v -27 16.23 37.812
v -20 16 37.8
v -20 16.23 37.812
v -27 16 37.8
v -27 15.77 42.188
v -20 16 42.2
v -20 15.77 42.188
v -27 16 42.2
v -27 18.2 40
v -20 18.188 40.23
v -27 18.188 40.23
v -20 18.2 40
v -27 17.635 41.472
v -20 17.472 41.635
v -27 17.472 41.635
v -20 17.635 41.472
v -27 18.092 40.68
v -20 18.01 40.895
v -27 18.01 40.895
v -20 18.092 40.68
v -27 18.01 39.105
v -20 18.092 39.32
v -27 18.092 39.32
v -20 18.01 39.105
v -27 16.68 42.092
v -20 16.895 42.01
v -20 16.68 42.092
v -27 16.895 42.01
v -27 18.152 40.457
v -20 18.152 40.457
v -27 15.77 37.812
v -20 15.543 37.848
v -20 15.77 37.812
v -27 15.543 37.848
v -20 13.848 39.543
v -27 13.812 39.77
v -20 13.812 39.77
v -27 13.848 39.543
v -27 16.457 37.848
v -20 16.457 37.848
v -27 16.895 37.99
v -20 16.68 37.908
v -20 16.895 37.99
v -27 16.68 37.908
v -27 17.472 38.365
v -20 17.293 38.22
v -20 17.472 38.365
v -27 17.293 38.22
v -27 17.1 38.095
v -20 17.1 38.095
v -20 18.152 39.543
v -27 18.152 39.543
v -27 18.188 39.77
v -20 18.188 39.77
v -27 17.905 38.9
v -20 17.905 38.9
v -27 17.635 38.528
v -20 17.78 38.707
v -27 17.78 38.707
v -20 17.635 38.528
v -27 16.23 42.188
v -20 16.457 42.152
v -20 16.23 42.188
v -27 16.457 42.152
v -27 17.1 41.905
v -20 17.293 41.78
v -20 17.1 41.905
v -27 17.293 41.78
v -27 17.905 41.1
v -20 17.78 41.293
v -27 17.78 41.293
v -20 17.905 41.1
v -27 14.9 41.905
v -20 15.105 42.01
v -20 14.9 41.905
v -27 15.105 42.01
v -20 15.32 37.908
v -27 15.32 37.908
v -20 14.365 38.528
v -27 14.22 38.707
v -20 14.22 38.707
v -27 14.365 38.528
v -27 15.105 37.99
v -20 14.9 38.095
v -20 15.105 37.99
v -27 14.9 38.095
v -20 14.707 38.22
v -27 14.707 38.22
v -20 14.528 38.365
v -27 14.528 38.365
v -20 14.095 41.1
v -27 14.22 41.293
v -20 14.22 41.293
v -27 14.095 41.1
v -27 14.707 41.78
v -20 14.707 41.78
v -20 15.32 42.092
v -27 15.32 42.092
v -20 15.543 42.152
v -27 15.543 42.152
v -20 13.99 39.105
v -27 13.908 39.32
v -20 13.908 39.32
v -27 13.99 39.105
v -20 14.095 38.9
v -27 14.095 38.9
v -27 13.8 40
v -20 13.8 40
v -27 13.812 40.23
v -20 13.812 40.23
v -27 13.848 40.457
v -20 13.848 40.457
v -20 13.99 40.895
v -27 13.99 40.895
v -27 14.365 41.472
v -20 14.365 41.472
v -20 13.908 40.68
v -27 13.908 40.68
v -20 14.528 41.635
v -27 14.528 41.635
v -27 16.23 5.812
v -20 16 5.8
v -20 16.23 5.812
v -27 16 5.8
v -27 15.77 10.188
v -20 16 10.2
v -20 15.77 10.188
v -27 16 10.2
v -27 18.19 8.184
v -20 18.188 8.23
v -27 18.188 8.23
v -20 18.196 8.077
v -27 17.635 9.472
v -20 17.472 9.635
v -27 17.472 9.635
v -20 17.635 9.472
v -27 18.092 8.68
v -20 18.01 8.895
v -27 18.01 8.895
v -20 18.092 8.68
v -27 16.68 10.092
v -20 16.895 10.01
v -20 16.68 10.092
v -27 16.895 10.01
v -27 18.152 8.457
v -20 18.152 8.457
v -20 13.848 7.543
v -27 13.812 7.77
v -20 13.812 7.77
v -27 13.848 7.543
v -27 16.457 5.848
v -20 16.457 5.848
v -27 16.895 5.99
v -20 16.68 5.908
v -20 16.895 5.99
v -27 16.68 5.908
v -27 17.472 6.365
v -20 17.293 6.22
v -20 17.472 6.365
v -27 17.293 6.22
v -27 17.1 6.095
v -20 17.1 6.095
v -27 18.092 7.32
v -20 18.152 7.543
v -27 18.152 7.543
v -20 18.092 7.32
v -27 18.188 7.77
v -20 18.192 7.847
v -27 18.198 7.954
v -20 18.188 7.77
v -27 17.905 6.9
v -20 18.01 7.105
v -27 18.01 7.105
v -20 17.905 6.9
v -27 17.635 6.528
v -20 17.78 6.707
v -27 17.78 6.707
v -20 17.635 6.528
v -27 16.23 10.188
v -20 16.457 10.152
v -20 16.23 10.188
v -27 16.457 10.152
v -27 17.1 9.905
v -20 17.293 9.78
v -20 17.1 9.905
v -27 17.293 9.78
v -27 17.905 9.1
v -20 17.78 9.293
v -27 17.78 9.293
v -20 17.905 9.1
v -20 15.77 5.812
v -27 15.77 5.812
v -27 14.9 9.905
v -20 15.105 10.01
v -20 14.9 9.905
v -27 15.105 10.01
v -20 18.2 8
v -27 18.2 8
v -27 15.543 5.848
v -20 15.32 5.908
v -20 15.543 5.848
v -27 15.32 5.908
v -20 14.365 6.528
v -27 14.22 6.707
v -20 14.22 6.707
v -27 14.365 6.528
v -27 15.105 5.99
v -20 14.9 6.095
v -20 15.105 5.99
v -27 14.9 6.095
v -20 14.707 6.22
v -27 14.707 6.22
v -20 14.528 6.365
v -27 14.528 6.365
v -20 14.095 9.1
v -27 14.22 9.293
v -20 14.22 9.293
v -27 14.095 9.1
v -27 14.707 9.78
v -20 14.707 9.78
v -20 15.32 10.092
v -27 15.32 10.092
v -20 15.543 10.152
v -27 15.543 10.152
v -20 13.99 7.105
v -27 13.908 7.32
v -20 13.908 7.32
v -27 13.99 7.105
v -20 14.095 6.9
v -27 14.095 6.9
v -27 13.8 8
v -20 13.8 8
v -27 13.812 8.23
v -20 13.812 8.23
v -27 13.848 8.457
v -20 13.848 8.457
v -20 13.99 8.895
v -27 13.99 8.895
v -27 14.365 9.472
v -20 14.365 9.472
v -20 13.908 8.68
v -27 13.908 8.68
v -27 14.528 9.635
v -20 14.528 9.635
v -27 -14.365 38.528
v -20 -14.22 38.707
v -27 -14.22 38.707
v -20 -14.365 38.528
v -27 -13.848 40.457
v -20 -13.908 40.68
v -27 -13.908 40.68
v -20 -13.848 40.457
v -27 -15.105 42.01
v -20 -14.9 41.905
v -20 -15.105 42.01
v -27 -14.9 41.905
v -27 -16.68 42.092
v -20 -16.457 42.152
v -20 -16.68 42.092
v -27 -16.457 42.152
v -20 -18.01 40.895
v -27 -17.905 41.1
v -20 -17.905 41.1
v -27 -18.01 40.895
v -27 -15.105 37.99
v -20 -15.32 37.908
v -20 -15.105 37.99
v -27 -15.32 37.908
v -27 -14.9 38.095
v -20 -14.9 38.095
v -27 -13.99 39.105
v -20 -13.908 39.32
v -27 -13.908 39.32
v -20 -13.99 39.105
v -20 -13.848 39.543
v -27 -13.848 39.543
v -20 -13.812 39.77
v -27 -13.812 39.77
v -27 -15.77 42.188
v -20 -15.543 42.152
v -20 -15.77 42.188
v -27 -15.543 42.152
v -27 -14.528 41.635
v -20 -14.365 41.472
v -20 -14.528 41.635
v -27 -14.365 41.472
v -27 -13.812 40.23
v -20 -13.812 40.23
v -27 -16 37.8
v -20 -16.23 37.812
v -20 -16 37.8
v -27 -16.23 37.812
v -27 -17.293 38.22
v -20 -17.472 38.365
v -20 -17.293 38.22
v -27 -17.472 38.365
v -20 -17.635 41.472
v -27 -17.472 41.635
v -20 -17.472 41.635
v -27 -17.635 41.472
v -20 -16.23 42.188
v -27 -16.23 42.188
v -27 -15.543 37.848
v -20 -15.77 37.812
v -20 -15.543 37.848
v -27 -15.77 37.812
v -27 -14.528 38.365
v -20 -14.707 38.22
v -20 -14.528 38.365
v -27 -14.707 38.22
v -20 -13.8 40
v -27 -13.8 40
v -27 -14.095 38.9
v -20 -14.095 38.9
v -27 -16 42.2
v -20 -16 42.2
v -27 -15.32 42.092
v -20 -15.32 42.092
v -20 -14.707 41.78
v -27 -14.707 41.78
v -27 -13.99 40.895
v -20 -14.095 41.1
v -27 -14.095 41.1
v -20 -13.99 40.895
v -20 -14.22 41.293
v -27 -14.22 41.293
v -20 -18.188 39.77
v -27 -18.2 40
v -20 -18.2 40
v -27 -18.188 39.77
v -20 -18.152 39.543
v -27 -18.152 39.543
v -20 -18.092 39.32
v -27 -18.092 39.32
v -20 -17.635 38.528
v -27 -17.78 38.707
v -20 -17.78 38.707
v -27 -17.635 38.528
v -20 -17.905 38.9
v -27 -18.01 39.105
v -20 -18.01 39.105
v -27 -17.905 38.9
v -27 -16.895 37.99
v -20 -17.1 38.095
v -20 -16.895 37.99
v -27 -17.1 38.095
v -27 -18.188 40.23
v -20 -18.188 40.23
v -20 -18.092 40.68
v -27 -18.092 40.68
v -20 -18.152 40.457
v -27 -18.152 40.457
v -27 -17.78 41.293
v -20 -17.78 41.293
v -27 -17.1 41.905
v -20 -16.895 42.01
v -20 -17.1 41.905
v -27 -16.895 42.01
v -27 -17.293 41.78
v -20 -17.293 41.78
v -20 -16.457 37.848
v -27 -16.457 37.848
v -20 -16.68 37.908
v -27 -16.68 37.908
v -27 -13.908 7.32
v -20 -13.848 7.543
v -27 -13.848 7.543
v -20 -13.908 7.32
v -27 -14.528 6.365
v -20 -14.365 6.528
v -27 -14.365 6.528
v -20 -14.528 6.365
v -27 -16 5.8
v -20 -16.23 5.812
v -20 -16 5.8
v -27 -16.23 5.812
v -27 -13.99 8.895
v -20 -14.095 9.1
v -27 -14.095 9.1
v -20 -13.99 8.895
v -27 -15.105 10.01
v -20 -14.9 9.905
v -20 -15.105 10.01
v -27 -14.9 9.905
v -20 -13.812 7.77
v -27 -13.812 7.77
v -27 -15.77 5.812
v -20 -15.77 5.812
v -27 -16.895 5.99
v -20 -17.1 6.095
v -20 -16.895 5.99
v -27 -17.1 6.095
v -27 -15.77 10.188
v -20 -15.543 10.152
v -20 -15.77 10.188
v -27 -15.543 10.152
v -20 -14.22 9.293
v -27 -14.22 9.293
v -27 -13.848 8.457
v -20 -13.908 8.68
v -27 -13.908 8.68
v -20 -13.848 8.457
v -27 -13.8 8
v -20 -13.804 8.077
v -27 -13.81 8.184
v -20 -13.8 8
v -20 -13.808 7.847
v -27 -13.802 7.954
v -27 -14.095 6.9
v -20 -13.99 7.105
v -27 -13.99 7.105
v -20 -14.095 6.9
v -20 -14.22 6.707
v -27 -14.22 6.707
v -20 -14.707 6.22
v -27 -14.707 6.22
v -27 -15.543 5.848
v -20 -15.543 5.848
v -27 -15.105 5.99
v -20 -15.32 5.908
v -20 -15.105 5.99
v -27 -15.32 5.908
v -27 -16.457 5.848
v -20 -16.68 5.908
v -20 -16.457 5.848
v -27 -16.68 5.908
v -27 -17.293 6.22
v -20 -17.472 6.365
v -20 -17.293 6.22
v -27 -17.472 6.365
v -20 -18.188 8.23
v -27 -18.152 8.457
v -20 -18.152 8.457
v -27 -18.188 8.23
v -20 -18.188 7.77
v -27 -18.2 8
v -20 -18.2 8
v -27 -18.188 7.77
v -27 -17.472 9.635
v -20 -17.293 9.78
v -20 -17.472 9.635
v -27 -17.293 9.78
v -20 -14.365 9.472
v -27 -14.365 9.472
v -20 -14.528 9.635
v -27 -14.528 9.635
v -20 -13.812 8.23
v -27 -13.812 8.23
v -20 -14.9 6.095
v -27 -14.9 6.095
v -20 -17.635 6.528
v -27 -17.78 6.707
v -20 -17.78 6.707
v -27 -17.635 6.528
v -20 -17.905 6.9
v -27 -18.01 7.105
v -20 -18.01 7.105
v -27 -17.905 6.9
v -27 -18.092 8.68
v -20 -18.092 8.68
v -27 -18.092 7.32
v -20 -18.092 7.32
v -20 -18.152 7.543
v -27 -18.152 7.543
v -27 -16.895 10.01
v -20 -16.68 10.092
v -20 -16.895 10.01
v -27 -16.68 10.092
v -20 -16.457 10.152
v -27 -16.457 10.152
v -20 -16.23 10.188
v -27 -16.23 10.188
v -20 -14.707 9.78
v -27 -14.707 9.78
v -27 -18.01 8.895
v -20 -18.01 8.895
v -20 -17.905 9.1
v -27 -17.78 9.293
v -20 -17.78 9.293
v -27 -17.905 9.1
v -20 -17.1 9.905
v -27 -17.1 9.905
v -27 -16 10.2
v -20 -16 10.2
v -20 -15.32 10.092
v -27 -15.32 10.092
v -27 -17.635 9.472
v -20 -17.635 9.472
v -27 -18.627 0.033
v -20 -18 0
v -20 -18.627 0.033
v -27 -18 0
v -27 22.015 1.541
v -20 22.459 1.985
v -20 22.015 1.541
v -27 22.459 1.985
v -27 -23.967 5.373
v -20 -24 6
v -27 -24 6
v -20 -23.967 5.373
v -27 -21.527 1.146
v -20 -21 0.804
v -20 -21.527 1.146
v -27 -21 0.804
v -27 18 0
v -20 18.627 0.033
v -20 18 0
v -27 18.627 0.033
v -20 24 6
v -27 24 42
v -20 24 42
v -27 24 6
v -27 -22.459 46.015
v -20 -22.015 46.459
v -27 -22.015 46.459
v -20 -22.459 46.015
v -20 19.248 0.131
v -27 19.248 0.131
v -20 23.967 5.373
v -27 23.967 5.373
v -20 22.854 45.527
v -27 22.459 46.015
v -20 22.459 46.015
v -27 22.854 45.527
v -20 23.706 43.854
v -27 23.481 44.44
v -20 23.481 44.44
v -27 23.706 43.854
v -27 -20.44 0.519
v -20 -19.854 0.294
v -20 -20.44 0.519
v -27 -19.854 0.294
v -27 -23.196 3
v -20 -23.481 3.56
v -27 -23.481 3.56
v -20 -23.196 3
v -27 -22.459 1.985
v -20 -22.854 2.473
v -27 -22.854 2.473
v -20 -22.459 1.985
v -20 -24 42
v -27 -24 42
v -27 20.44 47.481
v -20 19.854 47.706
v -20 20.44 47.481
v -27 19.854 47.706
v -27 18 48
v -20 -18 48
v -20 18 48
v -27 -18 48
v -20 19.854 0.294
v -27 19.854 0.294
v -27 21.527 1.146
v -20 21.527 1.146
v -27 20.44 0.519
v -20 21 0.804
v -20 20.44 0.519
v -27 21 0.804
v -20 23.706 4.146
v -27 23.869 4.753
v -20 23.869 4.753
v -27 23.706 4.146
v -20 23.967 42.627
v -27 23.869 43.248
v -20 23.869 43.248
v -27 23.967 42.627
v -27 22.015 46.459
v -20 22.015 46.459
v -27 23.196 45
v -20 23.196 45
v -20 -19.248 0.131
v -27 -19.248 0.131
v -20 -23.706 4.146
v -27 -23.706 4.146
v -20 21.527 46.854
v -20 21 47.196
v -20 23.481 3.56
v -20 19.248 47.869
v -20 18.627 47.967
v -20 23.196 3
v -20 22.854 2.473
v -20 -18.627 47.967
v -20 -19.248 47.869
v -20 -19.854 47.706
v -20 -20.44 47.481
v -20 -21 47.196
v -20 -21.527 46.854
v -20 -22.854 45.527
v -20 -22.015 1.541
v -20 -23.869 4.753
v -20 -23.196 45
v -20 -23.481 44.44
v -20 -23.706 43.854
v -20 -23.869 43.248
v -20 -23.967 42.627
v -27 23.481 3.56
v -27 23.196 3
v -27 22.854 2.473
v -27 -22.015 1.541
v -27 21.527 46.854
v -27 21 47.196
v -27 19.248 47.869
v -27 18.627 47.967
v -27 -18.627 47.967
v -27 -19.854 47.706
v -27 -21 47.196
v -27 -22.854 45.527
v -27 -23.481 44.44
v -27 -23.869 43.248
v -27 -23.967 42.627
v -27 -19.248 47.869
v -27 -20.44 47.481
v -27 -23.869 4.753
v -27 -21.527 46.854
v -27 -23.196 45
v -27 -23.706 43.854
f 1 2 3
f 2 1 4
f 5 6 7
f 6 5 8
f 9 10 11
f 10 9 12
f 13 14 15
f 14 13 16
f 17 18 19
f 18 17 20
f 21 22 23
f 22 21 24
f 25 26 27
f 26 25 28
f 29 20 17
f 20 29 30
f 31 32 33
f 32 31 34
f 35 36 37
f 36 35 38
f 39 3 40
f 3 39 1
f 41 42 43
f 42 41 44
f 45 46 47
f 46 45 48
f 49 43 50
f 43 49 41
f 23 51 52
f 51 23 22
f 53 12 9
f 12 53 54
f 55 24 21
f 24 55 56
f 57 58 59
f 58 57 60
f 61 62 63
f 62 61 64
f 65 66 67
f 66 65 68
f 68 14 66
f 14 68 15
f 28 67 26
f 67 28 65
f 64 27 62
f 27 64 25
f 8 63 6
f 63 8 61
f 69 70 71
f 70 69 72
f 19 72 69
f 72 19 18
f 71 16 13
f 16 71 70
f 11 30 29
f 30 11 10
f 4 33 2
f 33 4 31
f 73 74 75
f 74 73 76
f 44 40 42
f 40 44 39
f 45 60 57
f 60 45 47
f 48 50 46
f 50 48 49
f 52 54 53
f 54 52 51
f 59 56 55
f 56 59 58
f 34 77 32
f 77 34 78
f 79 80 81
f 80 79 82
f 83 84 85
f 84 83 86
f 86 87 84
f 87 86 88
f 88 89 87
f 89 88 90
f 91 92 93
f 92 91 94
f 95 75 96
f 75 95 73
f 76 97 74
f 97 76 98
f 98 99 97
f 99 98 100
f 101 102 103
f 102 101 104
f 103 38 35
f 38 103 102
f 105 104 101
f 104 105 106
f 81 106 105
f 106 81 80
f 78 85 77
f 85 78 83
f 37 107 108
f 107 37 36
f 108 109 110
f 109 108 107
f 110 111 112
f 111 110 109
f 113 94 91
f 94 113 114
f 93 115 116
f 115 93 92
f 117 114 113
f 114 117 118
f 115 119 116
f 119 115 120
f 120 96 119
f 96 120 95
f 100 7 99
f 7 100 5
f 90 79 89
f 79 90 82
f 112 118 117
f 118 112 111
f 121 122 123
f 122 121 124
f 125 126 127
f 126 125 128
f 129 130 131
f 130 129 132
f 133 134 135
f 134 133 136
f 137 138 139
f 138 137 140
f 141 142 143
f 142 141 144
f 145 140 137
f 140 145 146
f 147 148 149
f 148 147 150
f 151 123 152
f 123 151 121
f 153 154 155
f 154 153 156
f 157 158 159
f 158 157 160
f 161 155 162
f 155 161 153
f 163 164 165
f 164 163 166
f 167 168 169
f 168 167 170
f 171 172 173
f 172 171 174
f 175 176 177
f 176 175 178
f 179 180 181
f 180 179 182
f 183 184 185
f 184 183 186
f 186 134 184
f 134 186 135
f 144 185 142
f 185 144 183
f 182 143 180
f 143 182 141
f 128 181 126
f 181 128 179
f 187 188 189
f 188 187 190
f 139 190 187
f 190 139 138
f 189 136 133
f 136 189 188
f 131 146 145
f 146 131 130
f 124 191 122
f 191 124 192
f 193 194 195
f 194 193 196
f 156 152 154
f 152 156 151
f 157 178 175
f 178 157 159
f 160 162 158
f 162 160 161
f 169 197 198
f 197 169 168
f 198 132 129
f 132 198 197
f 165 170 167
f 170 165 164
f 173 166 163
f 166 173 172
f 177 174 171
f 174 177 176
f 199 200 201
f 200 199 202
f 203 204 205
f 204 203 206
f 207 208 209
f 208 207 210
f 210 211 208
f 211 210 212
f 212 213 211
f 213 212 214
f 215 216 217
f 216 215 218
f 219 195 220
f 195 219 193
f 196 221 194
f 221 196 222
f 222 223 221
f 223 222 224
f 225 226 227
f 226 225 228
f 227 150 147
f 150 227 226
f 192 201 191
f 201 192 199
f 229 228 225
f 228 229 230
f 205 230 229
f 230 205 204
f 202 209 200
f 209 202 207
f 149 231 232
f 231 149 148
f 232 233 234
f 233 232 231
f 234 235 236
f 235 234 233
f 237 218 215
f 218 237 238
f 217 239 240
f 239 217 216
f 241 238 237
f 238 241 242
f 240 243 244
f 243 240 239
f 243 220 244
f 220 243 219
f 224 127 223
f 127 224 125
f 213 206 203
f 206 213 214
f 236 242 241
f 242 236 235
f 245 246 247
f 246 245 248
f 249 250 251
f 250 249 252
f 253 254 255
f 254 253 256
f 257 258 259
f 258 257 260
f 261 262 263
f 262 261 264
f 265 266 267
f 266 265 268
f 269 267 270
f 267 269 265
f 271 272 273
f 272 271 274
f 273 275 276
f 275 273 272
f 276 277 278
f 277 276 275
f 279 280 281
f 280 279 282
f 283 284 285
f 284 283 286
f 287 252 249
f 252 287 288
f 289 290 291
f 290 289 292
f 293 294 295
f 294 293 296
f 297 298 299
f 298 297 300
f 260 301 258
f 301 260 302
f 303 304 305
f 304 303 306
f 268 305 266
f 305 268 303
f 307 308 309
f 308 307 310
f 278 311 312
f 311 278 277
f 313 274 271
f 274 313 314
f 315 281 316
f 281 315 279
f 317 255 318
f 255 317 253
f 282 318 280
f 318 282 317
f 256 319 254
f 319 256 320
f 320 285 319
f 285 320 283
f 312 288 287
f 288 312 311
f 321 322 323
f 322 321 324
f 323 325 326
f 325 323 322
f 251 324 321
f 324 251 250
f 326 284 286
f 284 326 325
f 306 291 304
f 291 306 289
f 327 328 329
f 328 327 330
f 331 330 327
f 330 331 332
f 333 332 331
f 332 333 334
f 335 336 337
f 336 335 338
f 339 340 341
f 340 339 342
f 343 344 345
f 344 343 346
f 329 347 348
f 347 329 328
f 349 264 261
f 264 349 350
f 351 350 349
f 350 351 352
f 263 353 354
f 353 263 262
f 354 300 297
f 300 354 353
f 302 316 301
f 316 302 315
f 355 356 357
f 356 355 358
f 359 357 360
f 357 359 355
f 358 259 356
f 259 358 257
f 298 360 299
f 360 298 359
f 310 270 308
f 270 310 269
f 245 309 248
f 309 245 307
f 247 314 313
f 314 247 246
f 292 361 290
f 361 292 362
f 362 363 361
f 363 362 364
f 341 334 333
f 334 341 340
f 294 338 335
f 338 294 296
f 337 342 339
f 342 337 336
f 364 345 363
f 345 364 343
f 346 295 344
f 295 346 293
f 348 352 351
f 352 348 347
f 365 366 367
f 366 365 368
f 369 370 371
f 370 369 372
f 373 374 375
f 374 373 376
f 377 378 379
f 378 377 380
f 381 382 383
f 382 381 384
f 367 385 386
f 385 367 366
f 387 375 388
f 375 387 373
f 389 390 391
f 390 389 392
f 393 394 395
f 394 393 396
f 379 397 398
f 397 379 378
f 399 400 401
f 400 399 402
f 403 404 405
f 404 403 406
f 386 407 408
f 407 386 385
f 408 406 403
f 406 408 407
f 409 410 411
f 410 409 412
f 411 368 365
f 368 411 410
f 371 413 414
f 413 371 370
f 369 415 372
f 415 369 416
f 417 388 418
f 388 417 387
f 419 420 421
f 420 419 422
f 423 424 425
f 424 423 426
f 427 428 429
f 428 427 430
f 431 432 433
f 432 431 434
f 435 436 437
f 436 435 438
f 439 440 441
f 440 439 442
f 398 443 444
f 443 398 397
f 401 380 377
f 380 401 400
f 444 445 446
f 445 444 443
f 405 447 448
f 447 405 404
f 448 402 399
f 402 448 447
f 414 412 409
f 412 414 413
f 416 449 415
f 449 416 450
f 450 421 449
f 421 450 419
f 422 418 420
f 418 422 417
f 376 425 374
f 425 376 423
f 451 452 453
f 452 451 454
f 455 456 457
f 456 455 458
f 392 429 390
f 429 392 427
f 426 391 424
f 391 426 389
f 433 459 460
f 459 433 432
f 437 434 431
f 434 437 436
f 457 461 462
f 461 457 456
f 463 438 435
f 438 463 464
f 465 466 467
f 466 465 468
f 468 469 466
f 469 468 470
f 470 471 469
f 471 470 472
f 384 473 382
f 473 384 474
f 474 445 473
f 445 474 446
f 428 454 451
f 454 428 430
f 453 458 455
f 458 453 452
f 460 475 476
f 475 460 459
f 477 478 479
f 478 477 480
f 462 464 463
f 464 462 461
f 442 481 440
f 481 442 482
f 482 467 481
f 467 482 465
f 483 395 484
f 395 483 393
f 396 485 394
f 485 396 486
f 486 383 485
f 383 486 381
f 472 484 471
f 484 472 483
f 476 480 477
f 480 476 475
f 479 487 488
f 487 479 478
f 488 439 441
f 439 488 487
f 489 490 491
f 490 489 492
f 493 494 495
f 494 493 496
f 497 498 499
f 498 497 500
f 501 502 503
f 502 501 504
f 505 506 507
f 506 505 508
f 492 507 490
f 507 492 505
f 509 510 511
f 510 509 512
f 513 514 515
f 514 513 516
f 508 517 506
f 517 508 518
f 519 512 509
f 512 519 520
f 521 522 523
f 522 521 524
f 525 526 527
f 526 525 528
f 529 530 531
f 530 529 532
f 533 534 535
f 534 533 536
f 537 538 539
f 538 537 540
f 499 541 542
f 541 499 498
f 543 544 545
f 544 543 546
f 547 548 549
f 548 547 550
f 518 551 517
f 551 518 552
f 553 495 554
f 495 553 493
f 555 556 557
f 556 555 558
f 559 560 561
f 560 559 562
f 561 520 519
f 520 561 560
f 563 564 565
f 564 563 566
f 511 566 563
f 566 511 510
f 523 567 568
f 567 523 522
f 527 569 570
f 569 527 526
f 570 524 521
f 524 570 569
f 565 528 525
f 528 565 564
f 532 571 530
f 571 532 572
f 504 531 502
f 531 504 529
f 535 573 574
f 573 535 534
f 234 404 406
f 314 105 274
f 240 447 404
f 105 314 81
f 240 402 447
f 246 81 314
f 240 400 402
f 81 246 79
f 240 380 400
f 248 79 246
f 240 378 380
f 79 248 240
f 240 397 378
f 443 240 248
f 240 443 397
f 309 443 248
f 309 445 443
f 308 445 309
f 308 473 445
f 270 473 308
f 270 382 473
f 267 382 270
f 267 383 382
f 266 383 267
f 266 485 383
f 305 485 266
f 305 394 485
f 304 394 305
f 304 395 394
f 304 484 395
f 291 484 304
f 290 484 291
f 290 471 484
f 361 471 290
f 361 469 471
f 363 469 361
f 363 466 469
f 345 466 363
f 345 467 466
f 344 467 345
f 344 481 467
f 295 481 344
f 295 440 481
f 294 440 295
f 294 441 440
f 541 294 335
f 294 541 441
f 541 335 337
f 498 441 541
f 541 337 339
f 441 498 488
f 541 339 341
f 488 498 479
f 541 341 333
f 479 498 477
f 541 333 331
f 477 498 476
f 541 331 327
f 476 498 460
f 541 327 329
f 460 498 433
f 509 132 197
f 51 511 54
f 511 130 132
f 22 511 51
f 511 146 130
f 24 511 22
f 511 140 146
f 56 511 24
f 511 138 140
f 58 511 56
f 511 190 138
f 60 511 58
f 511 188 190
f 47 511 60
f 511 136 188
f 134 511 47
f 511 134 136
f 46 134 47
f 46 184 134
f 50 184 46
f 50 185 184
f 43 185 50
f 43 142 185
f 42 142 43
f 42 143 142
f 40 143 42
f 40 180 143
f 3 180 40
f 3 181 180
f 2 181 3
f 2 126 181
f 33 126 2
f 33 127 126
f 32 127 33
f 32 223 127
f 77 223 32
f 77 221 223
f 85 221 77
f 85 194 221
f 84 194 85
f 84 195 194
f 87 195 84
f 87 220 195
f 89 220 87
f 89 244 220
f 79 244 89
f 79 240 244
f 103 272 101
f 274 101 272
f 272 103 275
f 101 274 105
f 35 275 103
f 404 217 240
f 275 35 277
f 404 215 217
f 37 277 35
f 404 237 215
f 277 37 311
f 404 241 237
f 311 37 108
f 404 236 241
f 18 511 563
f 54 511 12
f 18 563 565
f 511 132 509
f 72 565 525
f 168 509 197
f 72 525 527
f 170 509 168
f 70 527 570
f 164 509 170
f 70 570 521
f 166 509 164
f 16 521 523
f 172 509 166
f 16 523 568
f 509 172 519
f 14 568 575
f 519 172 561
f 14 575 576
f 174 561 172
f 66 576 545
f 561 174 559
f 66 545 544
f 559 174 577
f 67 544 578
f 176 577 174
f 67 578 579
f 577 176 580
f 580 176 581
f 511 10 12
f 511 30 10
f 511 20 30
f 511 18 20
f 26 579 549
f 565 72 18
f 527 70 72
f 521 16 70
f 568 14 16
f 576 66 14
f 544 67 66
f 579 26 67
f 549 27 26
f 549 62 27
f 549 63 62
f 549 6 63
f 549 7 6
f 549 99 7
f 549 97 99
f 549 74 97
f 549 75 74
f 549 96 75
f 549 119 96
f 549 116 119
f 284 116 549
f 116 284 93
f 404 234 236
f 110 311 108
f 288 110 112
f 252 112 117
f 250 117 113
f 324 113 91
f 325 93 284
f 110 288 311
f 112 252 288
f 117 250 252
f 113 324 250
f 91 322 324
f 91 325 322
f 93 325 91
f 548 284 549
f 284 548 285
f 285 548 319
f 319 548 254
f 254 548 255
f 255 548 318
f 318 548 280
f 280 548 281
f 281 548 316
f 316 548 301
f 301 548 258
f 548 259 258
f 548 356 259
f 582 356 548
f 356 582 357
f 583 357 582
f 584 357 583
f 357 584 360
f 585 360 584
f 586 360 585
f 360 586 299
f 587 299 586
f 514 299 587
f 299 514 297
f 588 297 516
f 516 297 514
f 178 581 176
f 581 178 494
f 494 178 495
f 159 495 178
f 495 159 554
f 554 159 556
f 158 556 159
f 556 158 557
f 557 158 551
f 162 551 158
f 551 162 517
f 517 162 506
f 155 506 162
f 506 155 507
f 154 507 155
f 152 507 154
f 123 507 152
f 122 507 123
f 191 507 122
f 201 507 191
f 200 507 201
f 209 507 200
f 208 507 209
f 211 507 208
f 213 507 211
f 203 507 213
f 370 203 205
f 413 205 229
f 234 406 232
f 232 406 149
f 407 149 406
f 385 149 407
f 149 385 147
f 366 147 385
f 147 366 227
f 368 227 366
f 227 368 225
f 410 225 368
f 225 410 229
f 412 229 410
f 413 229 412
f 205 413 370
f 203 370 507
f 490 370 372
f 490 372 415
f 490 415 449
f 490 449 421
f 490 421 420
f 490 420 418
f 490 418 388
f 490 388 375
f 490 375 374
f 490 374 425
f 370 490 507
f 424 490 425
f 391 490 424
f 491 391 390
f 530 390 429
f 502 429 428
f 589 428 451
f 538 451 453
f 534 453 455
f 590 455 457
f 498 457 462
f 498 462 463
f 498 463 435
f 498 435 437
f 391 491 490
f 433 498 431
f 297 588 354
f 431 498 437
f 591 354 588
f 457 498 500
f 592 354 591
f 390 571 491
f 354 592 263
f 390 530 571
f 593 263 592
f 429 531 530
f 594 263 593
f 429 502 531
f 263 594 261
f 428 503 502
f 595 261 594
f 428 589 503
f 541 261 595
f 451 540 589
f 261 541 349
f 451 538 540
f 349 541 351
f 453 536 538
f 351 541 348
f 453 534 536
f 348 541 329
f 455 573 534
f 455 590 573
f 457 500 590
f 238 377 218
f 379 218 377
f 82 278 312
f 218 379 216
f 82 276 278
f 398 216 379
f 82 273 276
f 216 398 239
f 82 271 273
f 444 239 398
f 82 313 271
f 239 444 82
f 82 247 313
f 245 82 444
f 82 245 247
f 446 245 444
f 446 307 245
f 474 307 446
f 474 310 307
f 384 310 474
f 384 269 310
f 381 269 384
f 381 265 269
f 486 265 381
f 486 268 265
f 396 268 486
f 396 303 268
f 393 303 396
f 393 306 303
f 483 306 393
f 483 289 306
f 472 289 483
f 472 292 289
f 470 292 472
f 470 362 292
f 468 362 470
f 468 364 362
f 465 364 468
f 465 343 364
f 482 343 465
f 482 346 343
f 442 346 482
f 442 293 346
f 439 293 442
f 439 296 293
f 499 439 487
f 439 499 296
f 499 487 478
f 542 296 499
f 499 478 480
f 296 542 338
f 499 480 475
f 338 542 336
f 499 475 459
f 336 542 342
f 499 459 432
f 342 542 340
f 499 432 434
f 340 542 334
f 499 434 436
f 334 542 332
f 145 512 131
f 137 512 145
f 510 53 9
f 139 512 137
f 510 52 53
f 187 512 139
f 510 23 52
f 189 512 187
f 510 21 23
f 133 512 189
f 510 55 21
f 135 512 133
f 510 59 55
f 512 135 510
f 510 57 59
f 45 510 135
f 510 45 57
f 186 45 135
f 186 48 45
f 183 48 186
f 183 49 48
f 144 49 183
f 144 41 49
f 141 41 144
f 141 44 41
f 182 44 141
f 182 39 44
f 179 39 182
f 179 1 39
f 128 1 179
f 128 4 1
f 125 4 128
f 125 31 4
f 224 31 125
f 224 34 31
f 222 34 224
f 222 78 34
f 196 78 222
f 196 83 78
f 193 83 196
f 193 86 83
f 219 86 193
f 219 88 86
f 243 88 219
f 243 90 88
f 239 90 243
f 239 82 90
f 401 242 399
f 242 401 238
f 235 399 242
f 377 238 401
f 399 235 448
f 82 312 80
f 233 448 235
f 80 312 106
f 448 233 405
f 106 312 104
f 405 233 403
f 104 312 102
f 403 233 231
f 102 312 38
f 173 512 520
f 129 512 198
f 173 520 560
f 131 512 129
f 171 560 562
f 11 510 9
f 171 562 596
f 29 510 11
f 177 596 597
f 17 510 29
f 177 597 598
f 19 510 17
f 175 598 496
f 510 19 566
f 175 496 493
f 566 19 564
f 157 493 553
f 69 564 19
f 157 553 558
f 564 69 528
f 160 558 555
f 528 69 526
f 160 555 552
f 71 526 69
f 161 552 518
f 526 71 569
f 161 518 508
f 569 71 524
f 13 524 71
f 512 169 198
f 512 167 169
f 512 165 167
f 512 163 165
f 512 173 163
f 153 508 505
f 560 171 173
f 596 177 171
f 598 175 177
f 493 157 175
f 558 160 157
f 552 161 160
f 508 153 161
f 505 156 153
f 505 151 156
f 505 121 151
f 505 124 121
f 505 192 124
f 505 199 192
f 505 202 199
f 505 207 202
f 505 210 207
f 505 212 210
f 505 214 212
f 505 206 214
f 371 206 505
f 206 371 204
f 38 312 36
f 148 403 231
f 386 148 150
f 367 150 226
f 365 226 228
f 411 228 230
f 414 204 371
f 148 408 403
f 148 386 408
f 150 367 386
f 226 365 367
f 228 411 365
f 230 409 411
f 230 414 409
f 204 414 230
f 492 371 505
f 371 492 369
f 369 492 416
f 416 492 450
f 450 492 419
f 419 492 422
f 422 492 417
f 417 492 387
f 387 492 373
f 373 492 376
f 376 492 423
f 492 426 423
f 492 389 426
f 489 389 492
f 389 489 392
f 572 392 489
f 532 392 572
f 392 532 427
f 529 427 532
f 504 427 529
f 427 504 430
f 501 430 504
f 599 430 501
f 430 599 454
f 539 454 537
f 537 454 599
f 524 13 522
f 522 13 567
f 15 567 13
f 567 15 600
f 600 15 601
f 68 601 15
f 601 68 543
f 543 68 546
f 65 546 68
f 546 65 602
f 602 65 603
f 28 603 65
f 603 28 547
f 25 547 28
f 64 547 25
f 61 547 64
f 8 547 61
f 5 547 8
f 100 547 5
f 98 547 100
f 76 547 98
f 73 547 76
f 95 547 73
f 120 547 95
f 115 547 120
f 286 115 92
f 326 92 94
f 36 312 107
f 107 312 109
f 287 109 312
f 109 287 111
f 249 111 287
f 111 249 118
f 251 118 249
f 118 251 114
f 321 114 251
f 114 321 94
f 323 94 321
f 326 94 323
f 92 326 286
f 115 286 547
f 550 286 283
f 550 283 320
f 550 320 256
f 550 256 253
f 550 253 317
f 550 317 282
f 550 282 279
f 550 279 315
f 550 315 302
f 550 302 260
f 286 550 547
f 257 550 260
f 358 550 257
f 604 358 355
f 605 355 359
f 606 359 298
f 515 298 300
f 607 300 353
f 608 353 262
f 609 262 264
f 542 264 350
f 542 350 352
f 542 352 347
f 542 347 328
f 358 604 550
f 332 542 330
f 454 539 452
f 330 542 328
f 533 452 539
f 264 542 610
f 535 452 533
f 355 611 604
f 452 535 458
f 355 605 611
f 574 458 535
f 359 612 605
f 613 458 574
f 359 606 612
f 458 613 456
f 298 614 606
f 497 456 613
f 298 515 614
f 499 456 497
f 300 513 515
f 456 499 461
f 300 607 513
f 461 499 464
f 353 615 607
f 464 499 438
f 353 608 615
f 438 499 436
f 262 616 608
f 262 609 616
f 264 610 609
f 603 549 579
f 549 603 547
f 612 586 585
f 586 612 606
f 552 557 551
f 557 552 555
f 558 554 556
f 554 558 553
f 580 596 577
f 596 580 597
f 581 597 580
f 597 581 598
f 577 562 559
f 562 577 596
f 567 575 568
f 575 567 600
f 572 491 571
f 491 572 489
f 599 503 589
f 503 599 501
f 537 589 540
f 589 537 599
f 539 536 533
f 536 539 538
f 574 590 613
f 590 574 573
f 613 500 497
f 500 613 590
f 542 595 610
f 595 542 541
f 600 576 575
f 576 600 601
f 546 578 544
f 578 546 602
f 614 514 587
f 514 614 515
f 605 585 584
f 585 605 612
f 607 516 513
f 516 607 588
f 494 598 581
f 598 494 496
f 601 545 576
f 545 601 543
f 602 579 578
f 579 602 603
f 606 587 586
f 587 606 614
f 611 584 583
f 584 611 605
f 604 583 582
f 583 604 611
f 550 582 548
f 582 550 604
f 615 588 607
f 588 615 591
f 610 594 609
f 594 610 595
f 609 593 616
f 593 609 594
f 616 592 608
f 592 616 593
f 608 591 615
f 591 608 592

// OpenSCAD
difference(){
  union(){
    translate([-20, -24, 0]) rotate([0, 270, 0]) 
    hull(){
      translate([6, 6, 0]) cylinder(r=6, h=7, center=false, $fn=60);
      translate([42, 6, 0]) cylinder(r=6, h=7, center=false, $fn=60);

      translate([6, 42, 0]) cylinder(r=6, h=7, center=false, $fn=60);
      translate([42, 42, 0]) cylinder(r=6, h=7, center=false, $fn=60);
    }
  }
  for(y=[1,-1]){
    translate([-30, 16*y, 40]) color([0,0,0]) rotate([0, 90, 0]) cylinder(r=2.2, h=15, center=false, $fn=60);
    translate([-30, 16*y, 8]) color([0,0,0]) rotate([0, 90, 0]) cylinder(r=2.2, h=15, center=false, $fn=60);
  }
}
